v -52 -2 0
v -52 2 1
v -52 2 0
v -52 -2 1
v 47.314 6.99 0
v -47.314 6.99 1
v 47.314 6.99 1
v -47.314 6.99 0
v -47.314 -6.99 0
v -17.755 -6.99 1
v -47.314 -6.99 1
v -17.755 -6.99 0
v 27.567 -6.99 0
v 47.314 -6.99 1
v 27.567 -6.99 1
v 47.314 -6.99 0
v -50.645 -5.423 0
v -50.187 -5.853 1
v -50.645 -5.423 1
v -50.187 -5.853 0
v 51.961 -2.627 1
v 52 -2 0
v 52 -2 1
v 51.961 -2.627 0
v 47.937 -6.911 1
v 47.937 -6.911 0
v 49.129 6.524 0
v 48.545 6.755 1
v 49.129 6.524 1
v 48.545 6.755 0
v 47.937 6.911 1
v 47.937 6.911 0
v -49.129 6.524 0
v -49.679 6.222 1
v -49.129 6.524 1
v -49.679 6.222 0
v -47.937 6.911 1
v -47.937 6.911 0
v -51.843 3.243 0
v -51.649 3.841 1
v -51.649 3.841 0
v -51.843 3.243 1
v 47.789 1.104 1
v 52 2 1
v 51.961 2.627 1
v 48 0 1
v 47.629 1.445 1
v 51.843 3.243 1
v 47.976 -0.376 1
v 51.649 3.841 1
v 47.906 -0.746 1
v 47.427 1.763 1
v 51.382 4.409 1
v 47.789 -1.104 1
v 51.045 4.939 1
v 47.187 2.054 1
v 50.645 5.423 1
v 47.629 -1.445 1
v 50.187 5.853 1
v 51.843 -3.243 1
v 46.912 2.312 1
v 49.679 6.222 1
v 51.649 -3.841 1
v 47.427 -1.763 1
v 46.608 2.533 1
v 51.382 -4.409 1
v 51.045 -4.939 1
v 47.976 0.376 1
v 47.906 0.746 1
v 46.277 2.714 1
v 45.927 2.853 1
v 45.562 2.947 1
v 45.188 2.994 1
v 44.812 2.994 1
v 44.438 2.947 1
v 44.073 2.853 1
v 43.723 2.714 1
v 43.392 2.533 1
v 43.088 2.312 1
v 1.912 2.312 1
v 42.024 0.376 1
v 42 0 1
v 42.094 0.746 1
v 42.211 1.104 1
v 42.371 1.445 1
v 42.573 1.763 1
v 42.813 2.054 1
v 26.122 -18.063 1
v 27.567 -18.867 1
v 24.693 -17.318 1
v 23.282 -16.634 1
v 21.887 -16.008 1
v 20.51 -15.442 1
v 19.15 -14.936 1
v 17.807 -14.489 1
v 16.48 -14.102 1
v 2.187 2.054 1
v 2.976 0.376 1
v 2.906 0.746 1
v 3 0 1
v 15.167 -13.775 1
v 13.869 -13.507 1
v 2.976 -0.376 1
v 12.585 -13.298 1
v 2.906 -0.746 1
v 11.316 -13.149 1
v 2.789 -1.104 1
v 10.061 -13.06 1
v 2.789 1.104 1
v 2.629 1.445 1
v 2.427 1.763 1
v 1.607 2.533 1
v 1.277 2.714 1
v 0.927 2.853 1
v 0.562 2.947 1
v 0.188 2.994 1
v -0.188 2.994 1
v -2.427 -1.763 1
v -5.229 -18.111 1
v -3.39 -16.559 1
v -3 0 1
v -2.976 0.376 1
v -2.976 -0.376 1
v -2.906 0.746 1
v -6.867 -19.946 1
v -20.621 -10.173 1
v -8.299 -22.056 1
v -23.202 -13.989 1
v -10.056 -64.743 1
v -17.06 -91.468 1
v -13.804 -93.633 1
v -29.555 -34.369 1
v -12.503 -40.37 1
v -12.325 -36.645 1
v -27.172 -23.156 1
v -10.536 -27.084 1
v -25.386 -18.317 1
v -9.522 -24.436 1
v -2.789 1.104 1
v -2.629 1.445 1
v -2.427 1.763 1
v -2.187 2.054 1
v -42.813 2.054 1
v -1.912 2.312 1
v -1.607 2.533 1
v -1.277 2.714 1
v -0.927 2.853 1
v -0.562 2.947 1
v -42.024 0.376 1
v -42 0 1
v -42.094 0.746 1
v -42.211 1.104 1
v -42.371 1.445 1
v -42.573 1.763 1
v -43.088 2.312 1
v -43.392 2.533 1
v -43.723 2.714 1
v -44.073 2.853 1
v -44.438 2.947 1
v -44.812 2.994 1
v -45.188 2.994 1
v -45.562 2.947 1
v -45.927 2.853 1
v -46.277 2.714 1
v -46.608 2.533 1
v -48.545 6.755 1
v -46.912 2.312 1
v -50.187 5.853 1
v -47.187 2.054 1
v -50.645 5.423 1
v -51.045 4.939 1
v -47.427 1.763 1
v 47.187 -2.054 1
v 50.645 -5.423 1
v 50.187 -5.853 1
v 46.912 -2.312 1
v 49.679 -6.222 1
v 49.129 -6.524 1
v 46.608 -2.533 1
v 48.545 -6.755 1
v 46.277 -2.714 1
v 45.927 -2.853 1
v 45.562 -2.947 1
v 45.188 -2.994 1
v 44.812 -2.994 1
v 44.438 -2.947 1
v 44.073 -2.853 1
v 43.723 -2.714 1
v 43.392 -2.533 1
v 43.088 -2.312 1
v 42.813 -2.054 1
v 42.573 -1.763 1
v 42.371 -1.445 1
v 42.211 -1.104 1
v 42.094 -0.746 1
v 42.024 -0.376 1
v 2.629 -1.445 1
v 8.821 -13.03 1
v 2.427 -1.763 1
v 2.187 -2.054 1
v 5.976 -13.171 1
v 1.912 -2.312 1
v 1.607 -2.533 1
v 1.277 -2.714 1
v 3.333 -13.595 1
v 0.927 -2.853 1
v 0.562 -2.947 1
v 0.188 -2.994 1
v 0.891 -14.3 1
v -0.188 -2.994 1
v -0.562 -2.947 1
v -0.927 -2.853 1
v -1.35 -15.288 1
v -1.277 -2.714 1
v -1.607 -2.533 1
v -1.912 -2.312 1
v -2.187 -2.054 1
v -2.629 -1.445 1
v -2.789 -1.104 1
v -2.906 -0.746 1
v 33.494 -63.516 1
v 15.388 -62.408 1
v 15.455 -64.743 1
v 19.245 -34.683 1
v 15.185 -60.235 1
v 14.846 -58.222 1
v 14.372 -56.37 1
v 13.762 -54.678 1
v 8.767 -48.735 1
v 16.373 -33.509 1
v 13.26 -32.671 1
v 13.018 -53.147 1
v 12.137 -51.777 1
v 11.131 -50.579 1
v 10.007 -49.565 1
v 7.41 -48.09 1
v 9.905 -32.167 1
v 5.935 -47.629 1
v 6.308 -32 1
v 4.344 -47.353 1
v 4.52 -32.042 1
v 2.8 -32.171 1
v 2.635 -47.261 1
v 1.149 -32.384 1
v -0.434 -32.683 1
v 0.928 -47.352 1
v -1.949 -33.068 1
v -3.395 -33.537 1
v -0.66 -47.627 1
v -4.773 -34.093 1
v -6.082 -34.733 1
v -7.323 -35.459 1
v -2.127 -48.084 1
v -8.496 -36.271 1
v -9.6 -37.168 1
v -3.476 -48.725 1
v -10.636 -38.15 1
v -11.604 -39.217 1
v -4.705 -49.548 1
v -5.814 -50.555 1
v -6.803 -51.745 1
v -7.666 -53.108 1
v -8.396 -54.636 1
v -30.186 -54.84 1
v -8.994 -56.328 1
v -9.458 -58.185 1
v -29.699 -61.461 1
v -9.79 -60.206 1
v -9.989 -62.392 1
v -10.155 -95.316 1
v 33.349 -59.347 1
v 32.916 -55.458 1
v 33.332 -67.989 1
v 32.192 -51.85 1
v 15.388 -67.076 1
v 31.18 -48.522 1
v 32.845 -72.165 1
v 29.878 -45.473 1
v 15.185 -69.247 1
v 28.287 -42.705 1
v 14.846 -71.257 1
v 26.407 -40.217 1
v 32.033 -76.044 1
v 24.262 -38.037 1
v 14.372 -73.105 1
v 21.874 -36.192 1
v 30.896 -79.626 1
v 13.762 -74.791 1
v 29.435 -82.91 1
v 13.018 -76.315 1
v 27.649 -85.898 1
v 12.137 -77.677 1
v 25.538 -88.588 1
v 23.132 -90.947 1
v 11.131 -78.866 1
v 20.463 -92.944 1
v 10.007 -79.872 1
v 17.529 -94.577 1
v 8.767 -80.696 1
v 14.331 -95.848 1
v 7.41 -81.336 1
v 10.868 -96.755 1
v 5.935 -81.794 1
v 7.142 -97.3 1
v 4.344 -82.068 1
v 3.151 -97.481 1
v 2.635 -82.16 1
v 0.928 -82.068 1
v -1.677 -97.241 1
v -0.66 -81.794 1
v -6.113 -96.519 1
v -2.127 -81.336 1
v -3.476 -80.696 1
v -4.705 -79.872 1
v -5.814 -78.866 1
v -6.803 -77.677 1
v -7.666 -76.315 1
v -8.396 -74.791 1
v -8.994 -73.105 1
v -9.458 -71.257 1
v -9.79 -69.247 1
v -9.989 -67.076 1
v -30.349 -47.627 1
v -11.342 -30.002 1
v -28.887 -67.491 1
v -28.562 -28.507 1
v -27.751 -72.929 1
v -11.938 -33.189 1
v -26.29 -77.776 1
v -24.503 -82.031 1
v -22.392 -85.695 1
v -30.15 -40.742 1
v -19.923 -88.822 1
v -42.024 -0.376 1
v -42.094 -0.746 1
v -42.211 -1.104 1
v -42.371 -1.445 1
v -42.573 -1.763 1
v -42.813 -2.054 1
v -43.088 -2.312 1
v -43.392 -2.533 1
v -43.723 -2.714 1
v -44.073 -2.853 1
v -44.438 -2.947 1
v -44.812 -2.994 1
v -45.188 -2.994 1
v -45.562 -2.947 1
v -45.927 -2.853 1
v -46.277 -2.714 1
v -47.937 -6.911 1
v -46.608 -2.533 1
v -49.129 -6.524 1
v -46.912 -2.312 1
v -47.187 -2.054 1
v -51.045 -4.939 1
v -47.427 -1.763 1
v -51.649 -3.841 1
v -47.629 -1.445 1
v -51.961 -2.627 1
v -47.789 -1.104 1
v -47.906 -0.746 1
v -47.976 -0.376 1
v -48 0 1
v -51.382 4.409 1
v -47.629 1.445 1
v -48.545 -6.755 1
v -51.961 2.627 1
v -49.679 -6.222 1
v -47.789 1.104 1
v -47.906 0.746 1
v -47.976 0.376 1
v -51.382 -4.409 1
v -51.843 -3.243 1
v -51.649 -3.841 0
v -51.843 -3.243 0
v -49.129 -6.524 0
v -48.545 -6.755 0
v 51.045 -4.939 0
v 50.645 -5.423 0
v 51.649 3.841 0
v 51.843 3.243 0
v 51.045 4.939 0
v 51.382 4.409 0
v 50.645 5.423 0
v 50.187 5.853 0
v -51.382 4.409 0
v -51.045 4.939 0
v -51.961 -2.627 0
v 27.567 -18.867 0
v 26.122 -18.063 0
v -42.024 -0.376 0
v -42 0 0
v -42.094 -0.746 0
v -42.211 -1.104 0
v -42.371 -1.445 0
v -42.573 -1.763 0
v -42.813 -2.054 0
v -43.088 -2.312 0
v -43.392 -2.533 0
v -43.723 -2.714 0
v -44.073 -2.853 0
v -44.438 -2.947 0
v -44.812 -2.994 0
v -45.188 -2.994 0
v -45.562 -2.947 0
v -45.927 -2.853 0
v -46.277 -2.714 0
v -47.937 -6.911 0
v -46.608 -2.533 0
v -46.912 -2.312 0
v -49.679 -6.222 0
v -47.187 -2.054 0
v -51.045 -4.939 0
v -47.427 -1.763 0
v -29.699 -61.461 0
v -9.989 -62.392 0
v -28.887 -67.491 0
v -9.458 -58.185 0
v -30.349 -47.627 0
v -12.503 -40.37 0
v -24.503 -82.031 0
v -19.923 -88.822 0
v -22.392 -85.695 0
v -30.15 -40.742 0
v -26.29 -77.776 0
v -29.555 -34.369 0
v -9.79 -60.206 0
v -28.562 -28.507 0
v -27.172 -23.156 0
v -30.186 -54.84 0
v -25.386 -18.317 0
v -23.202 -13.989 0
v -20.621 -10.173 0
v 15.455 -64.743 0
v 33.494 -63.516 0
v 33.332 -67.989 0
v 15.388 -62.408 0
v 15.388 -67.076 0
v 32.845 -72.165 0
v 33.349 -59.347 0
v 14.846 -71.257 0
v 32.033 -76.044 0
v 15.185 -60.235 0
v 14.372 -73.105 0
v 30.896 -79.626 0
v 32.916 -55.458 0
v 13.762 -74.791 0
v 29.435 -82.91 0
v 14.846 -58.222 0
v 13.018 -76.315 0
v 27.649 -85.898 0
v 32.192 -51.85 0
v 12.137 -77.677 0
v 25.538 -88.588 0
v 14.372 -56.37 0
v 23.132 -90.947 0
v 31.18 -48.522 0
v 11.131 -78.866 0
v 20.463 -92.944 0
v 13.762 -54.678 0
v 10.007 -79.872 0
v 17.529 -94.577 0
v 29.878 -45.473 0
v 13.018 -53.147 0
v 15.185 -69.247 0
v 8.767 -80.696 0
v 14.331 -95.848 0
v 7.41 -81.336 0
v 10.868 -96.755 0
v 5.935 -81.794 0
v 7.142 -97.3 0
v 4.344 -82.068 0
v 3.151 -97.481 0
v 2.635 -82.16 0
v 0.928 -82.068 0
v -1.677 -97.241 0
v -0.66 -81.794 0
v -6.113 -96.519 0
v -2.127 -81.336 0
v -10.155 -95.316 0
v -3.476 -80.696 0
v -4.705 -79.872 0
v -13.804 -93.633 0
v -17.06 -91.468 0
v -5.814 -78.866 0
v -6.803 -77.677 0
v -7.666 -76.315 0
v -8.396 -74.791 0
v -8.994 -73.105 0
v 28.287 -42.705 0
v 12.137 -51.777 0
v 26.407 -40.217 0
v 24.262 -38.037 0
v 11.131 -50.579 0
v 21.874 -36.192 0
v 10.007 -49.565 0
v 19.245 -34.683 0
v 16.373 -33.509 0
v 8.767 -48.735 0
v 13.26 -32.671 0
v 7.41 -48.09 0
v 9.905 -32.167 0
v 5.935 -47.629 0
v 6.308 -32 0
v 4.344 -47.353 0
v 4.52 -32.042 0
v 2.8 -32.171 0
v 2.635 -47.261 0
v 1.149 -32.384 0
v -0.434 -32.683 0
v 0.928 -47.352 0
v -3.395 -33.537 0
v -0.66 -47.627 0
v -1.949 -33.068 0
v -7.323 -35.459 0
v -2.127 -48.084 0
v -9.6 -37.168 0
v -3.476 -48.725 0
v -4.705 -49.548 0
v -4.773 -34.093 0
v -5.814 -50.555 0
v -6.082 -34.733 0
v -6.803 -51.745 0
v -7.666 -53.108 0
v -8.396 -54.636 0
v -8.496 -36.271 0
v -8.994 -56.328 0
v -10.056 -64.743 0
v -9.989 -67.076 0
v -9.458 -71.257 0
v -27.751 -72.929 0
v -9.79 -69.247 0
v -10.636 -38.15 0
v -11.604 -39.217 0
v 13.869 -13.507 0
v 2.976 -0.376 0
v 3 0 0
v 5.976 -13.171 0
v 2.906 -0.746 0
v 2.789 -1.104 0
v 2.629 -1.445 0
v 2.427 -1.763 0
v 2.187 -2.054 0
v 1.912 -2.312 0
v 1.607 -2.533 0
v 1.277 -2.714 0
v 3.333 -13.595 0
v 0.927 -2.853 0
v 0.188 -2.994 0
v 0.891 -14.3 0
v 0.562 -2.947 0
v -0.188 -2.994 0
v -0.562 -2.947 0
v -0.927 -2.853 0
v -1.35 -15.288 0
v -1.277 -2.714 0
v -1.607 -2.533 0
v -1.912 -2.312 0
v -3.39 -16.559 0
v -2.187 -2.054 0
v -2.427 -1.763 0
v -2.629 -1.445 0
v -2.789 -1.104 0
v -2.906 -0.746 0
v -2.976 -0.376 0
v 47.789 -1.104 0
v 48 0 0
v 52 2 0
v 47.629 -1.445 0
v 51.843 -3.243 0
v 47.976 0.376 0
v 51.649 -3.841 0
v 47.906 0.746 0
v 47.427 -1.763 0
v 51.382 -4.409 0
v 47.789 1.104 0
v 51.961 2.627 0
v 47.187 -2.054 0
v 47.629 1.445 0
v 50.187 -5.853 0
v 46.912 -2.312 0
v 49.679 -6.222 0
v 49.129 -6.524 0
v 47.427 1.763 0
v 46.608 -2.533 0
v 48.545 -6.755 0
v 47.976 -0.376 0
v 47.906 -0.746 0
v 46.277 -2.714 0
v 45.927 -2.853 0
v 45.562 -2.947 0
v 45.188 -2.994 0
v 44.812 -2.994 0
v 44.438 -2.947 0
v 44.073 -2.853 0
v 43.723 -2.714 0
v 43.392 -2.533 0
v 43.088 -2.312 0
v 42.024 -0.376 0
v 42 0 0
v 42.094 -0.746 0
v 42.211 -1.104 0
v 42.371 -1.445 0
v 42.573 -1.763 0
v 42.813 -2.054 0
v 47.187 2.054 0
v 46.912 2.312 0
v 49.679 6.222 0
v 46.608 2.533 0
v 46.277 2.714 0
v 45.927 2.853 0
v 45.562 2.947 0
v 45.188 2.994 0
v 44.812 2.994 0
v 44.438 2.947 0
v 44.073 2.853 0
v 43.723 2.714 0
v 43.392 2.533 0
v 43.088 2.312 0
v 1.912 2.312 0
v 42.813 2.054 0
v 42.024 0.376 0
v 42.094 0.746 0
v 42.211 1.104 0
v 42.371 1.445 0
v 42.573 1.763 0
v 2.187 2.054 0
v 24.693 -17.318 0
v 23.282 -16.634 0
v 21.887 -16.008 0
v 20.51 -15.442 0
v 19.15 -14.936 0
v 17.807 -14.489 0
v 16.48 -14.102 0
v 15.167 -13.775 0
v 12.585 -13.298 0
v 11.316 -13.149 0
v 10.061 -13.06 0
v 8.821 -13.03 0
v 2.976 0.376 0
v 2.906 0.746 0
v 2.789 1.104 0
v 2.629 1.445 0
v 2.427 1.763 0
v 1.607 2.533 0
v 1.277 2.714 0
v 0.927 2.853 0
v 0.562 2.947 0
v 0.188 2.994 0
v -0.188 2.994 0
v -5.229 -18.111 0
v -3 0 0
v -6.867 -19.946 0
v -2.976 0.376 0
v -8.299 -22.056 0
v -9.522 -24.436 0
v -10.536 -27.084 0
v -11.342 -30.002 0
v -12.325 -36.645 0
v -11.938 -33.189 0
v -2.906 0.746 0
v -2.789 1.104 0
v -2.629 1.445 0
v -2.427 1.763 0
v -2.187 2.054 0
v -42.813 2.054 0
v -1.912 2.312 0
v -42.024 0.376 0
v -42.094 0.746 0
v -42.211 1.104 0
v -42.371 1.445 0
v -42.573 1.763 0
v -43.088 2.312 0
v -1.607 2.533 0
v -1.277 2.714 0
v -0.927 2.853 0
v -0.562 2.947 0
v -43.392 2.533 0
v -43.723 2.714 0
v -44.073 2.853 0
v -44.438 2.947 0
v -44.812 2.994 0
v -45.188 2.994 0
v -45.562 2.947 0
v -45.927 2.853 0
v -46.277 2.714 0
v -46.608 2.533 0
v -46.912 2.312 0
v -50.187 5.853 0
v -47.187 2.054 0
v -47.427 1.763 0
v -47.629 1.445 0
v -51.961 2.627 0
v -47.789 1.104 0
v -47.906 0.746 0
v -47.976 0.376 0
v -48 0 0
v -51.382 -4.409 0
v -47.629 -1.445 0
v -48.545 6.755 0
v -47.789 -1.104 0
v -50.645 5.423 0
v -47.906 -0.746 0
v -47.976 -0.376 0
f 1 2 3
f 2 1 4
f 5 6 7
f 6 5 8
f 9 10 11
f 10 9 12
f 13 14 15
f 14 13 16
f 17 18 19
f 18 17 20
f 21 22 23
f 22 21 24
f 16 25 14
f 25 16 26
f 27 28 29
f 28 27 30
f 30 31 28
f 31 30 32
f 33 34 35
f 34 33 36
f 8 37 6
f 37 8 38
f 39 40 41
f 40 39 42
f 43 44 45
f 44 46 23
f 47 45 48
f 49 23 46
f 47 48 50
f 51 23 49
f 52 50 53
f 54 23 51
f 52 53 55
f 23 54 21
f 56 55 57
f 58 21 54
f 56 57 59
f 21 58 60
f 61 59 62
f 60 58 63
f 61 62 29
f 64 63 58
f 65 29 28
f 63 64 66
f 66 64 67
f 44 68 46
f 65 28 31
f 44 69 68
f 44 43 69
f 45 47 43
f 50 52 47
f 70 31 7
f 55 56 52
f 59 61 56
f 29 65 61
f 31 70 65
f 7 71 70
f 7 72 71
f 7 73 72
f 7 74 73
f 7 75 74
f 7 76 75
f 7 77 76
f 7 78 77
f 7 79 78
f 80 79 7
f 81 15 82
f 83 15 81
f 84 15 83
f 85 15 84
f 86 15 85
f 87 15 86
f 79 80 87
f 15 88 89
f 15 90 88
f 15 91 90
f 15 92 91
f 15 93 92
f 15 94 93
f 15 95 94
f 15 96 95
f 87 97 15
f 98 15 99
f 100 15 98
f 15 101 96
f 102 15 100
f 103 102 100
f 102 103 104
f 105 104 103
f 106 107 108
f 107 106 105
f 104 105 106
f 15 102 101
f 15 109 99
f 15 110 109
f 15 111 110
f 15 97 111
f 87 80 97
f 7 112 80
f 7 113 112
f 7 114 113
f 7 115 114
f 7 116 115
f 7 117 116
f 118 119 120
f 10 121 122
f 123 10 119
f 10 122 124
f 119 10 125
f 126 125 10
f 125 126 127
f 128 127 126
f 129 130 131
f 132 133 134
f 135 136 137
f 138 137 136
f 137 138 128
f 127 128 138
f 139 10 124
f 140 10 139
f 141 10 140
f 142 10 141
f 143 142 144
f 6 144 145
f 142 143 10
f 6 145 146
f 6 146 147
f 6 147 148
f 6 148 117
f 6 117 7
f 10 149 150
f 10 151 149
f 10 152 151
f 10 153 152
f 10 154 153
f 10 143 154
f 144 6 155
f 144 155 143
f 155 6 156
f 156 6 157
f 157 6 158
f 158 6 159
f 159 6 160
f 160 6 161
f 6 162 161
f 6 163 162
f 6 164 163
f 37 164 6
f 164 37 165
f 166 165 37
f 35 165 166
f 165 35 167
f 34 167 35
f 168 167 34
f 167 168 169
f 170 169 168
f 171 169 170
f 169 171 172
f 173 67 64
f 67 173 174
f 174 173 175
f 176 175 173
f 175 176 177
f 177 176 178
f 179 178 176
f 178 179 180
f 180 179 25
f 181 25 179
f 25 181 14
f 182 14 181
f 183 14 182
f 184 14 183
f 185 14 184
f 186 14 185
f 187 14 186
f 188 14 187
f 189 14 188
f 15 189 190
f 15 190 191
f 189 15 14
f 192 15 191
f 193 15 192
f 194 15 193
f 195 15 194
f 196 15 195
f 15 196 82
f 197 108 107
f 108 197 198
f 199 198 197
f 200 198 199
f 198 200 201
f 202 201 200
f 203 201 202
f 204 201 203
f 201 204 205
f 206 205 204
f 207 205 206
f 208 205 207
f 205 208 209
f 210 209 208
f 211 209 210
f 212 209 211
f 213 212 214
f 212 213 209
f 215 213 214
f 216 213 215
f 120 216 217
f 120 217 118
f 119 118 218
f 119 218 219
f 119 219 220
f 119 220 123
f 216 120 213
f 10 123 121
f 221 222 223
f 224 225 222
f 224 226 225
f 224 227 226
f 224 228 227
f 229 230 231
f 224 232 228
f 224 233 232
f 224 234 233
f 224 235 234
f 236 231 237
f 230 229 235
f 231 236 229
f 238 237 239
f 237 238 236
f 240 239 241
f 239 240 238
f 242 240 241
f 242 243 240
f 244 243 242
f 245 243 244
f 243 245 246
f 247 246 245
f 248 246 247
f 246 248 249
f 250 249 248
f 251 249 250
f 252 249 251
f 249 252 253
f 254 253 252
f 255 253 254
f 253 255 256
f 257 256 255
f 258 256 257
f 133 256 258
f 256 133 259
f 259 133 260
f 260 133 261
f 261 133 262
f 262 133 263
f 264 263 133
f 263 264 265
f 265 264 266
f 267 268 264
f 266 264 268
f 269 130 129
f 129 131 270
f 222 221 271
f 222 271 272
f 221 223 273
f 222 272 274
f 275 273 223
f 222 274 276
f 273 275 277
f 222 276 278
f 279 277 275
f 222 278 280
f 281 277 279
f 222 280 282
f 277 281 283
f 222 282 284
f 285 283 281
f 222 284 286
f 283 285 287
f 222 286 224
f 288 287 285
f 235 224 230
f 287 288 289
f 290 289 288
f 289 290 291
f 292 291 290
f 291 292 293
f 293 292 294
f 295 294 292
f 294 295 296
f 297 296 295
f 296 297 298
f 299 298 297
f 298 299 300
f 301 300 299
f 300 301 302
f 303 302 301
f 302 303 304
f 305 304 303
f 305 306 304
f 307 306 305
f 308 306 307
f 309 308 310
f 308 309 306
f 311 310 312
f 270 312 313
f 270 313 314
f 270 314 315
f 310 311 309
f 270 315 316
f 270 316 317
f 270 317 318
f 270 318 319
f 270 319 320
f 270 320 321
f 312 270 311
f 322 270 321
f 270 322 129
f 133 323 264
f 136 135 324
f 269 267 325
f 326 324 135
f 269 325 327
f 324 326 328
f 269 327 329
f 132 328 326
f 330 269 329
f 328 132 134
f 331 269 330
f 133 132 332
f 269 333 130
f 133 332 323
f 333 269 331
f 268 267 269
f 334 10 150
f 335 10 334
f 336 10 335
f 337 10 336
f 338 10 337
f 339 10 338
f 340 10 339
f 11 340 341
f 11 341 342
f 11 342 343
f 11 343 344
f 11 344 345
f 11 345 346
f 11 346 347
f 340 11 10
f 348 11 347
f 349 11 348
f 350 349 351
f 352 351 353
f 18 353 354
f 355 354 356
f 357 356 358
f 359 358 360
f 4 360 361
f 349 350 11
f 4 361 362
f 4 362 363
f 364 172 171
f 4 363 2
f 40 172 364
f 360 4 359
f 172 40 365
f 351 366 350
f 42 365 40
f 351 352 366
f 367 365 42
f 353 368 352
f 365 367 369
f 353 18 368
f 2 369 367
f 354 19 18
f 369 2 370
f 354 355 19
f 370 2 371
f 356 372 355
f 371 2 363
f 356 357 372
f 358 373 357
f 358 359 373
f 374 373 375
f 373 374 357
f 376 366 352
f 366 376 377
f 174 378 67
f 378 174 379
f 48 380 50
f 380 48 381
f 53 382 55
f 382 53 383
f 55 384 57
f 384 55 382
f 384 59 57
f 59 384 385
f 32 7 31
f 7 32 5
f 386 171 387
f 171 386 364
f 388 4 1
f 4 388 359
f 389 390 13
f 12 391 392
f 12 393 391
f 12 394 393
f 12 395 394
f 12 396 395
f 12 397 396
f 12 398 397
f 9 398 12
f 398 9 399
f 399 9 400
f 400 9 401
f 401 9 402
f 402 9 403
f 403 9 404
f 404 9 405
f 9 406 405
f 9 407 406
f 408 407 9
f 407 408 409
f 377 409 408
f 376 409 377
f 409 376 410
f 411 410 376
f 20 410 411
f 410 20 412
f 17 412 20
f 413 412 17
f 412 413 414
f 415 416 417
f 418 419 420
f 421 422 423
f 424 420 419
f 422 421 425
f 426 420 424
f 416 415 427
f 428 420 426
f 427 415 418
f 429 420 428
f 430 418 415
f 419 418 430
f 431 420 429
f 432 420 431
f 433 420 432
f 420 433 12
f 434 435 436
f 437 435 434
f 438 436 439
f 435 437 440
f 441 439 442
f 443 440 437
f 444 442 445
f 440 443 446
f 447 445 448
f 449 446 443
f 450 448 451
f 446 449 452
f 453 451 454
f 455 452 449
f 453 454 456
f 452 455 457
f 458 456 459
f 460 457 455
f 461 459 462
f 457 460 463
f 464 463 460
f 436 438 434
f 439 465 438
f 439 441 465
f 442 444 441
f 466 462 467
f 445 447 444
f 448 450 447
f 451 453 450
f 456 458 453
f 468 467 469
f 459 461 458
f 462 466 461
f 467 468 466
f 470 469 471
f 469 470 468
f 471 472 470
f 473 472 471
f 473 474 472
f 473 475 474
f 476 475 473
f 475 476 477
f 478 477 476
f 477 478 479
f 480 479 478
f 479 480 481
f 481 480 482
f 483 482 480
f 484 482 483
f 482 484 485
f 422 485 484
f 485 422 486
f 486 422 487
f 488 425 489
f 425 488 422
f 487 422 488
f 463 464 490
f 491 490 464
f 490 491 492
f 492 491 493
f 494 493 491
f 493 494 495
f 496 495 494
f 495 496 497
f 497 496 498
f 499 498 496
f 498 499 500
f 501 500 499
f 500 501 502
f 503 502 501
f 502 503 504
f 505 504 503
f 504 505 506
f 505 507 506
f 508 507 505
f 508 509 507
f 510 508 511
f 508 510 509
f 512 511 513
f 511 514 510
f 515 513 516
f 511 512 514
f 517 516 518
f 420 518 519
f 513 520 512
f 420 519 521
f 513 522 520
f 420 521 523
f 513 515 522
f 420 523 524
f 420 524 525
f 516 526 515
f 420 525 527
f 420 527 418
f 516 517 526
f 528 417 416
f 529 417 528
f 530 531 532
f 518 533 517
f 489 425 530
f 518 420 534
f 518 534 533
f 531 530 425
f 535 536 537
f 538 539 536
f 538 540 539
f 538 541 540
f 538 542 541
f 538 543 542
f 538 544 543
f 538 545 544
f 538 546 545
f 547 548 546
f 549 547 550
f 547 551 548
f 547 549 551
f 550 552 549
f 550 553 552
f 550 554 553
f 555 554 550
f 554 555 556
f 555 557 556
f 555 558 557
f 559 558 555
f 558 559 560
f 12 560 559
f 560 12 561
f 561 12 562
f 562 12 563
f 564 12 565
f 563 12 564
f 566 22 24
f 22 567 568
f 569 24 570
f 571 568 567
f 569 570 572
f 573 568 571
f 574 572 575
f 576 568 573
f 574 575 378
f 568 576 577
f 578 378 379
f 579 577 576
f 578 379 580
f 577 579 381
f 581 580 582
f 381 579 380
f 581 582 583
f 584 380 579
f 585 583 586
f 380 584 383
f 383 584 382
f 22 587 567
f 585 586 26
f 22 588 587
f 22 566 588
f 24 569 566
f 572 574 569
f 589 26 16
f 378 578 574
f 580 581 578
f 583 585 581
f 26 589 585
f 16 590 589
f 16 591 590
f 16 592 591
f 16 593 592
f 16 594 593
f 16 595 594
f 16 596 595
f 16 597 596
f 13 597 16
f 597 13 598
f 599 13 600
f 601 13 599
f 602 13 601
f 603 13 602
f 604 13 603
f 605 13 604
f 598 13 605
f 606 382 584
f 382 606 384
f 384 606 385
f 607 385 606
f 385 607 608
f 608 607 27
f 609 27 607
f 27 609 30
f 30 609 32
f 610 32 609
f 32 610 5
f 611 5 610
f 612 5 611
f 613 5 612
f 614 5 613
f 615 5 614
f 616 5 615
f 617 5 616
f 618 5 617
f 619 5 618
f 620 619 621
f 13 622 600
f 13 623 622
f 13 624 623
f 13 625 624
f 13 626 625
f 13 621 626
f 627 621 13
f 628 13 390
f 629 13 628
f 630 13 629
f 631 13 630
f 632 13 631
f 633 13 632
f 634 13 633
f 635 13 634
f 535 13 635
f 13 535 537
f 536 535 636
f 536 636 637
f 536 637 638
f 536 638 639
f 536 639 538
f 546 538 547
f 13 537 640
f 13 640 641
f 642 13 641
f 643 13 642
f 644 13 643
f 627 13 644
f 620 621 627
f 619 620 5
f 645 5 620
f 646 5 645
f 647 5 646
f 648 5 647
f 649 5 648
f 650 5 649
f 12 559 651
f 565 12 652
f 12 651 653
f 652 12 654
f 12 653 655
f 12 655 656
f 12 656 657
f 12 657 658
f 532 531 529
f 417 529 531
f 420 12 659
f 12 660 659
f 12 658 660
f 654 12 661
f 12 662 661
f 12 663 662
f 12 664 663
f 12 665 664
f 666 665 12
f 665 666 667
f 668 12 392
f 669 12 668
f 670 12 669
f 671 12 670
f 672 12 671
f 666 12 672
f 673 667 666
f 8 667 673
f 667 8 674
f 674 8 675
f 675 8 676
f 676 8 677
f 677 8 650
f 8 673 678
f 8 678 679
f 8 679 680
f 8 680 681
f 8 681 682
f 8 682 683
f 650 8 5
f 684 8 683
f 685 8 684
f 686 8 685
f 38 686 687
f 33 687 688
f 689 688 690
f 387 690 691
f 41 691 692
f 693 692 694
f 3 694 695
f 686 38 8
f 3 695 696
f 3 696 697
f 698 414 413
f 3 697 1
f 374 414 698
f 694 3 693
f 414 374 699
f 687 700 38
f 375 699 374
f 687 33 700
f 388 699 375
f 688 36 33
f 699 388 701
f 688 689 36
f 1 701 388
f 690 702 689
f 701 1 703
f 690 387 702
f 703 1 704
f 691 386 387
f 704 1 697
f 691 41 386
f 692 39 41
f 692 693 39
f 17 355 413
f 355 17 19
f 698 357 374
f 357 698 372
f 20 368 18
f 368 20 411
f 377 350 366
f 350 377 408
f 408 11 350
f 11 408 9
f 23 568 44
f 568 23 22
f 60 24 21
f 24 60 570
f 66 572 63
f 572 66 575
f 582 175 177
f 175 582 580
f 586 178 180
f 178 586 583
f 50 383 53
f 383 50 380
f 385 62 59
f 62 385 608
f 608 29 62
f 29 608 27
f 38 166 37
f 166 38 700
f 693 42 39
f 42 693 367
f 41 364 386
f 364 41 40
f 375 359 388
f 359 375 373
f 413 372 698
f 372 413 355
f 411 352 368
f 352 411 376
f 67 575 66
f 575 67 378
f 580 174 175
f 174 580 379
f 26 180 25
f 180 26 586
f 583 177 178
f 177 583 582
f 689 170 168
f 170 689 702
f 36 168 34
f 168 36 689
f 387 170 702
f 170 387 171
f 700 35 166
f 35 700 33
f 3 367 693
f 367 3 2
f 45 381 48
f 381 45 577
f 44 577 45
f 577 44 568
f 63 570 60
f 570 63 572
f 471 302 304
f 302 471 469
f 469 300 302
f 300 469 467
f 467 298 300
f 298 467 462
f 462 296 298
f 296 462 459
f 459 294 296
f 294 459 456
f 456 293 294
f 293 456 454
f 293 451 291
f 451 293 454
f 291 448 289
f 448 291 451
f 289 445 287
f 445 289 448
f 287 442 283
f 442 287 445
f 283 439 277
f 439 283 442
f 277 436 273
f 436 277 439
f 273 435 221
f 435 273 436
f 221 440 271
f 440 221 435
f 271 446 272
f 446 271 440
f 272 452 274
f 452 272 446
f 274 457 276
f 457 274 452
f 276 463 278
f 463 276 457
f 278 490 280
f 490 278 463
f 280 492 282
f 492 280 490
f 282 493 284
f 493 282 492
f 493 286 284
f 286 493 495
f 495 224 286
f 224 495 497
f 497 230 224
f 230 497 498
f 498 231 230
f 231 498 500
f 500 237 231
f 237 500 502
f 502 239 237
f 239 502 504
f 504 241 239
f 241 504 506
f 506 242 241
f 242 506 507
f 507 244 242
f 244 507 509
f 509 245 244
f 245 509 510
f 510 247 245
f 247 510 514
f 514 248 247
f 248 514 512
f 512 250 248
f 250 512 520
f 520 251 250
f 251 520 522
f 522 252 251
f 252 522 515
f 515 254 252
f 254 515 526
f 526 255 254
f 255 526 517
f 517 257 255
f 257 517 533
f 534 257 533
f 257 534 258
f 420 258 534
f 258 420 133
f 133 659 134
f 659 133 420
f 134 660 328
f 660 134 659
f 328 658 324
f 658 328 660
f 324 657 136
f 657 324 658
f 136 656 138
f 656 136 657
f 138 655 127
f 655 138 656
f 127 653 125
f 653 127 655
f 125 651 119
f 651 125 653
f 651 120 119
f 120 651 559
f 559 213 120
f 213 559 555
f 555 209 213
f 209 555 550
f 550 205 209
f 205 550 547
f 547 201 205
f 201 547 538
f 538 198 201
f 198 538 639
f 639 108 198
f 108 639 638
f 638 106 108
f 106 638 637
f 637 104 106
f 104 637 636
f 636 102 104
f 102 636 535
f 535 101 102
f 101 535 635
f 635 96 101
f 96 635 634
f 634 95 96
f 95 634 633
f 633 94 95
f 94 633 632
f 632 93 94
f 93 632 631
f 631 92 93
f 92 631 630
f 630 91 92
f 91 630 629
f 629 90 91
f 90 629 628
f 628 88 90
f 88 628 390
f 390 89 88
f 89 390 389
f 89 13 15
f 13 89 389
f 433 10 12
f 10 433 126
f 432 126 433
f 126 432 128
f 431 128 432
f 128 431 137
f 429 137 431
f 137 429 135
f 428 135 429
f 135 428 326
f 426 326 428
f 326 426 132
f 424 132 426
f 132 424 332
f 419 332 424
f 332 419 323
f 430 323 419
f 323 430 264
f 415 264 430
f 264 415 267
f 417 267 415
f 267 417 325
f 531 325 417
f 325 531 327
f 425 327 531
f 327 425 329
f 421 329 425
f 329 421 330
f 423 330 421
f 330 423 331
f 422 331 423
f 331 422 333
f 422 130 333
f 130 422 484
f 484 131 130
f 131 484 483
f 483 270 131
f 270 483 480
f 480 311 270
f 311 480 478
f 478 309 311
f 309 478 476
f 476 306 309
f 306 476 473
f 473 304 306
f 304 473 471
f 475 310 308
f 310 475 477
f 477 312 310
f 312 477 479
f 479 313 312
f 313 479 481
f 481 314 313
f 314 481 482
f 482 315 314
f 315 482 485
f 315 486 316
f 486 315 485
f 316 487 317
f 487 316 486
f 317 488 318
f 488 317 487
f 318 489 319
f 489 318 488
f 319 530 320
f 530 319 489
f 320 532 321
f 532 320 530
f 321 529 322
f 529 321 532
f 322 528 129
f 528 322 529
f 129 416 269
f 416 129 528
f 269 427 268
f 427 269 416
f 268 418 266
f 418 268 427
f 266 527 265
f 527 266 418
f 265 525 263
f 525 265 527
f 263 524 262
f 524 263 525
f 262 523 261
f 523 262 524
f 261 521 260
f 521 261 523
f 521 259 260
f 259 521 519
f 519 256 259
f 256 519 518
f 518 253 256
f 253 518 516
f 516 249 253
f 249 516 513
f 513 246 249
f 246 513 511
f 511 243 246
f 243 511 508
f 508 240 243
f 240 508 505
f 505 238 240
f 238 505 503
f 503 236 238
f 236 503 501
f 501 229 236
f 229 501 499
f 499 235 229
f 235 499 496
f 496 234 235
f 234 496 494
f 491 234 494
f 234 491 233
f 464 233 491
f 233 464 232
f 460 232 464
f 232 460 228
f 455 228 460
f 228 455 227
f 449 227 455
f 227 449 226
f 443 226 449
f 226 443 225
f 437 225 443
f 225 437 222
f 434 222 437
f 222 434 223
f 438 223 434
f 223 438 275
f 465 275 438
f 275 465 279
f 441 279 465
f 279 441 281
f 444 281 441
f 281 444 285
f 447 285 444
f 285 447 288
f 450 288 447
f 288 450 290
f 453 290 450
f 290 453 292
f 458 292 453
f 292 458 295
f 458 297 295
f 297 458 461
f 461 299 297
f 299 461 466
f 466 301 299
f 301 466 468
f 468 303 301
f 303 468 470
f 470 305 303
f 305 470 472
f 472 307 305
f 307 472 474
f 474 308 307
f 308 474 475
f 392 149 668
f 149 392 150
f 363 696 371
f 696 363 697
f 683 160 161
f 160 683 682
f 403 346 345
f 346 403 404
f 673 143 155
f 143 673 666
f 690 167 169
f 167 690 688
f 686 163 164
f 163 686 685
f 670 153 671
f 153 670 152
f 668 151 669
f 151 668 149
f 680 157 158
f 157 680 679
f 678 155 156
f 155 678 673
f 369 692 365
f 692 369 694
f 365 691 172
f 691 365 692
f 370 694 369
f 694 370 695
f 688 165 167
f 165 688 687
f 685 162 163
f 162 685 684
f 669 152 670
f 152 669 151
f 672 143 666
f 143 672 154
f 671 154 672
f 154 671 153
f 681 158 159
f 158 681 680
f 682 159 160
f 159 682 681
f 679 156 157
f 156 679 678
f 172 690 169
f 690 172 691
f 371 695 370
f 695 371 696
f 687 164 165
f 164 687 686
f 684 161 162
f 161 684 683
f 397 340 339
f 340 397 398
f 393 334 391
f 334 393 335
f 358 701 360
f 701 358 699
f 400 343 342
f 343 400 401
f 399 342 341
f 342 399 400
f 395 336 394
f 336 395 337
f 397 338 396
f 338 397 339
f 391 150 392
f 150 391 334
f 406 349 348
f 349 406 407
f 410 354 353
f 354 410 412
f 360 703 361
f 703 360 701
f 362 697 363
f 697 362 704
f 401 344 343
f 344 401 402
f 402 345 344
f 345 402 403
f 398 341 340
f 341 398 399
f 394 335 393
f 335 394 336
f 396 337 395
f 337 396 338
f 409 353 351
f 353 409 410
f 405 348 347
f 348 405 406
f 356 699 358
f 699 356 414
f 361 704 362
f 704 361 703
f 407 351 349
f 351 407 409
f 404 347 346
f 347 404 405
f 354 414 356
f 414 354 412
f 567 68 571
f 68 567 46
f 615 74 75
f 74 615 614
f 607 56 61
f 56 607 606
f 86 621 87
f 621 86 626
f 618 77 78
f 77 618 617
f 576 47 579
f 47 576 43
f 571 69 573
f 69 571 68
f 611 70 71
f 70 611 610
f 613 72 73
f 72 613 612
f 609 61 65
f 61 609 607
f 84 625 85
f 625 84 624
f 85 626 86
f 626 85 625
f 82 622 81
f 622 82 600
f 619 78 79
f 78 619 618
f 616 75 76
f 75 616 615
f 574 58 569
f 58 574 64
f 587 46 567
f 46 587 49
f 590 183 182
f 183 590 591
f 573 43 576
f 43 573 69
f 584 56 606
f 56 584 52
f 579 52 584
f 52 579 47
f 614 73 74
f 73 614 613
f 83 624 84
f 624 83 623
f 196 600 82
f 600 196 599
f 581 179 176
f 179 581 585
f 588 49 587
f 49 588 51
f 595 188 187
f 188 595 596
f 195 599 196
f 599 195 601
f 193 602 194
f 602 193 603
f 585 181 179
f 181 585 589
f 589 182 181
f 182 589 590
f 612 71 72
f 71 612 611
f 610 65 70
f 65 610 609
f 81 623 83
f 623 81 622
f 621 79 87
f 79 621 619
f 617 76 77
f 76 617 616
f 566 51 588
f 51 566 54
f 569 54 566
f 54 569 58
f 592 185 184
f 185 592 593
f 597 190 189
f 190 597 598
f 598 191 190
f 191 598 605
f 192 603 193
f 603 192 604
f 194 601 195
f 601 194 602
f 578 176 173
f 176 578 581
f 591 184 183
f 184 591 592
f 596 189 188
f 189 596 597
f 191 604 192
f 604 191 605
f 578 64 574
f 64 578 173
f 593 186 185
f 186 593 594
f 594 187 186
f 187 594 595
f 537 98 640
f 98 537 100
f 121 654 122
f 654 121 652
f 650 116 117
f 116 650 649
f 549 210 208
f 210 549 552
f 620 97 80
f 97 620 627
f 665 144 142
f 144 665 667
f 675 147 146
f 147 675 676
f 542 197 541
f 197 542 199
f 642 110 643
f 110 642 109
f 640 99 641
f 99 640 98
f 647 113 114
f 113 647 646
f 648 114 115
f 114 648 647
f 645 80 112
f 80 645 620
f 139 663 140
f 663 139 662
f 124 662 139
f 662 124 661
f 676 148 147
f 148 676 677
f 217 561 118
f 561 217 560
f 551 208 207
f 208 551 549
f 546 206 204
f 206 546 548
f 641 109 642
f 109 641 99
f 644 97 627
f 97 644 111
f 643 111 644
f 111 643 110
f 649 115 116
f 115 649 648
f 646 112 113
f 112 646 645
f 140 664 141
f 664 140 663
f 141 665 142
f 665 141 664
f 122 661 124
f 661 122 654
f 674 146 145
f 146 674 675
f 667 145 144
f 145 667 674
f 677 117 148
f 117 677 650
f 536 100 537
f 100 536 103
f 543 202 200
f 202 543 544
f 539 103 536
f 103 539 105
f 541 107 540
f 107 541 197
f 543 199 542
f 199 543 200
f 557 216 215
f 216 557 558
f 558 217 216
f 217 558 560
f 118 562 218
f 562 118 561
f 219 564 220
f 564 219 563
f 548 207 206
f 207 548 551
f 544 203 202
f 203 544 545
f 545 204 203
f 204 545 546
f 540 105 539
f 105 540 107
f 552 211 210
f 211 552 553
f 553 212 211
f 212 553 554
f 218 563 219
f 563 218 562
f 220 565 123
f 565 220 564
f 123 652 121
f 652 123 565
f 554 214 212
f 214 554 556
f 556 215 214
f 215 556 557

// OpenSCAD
$fn = 50;


difference() {
	union() {
		translate(v = [0, 0, 0]) {
			rotate(a = [0, 0, 0]) {
				hull() {
					translate(v = [-47.0000000000, 2.0000000000, 0]) {
						rotate(a = [0, 0, 0]) {
							translate(v = [0, 0, 0]) {
								rotate(a = [0, 0, 0]) {
									cylinder(h = 1, r = 5);
								}
							}
						}
					}
					translate(v = [47.0000000000, 2.0000000000, 0]) {
						rotate(a = [0, 0, 0]) {
							translate(v = [0, 0, 0]) {
								rotate(a = [0, 0, 0]) {
									cylinder(h = 1, r = 5);
								}
							}
						}
					}
					translate(v = [-47.0000000000, -2.0000000000, 0]) {
						rotate(a = [0, 0, 0]) {
							translate(v = [0, 0, 0]) {
								rotate(a = [0, 0, 0]) {
									cylinder(h = 1, r = 5);
								}
							}
						}
					}
					translate(v = [47.0000000000, -2.0000000000, 0]) {
						rotate(a = [0, 0, 0]) {
							translate(v = [0, 0, 0]) {
								rotate(a = [0, 0, 0]) {
									cylinder(h = 1, r = 5);
								}
							}
						}
					}
				}
			}
		}
		translate(v = [0, 0, 0]) {
			rotate(a = [0, 0, 0]) {
				linear_extrude(height = 1) {
					text(font = "DejaVu Sans Mono:style=Bold", halign = "center", size = 95.0000000000, text = "6", valign = "top");
				}
			}
		}
	}
	union() {
		translate(v = [-45.0000000000, 0.0000000000, -125.0000000000]) {
			rotate(a = [0, 0, 0]) {
				cylinder(h = 250, r = 3.0000000000);
			}
		}
		translate(v = [45.0000000000, 0.0000000000, -125.0000000000]) {
			rotate(a = [0, 0, 0]) {
				cylinder(h = 250, r = 3.0000000000);
			}
		}
		translate(v = [45.0000000000, 0.0000000000, -125.0000000000]) {
			rotate(a = [0, 0, 0]) {
				cylinder(h = 250, r = 3.0000000000);
			}
		}
		translate(v = [0, 0, -125.0000000000]) {
			rotate(a = [0, 0, 0]) {
				cylinder(h = 250, r = 3.0000000000);
			}
		}
	}
}
